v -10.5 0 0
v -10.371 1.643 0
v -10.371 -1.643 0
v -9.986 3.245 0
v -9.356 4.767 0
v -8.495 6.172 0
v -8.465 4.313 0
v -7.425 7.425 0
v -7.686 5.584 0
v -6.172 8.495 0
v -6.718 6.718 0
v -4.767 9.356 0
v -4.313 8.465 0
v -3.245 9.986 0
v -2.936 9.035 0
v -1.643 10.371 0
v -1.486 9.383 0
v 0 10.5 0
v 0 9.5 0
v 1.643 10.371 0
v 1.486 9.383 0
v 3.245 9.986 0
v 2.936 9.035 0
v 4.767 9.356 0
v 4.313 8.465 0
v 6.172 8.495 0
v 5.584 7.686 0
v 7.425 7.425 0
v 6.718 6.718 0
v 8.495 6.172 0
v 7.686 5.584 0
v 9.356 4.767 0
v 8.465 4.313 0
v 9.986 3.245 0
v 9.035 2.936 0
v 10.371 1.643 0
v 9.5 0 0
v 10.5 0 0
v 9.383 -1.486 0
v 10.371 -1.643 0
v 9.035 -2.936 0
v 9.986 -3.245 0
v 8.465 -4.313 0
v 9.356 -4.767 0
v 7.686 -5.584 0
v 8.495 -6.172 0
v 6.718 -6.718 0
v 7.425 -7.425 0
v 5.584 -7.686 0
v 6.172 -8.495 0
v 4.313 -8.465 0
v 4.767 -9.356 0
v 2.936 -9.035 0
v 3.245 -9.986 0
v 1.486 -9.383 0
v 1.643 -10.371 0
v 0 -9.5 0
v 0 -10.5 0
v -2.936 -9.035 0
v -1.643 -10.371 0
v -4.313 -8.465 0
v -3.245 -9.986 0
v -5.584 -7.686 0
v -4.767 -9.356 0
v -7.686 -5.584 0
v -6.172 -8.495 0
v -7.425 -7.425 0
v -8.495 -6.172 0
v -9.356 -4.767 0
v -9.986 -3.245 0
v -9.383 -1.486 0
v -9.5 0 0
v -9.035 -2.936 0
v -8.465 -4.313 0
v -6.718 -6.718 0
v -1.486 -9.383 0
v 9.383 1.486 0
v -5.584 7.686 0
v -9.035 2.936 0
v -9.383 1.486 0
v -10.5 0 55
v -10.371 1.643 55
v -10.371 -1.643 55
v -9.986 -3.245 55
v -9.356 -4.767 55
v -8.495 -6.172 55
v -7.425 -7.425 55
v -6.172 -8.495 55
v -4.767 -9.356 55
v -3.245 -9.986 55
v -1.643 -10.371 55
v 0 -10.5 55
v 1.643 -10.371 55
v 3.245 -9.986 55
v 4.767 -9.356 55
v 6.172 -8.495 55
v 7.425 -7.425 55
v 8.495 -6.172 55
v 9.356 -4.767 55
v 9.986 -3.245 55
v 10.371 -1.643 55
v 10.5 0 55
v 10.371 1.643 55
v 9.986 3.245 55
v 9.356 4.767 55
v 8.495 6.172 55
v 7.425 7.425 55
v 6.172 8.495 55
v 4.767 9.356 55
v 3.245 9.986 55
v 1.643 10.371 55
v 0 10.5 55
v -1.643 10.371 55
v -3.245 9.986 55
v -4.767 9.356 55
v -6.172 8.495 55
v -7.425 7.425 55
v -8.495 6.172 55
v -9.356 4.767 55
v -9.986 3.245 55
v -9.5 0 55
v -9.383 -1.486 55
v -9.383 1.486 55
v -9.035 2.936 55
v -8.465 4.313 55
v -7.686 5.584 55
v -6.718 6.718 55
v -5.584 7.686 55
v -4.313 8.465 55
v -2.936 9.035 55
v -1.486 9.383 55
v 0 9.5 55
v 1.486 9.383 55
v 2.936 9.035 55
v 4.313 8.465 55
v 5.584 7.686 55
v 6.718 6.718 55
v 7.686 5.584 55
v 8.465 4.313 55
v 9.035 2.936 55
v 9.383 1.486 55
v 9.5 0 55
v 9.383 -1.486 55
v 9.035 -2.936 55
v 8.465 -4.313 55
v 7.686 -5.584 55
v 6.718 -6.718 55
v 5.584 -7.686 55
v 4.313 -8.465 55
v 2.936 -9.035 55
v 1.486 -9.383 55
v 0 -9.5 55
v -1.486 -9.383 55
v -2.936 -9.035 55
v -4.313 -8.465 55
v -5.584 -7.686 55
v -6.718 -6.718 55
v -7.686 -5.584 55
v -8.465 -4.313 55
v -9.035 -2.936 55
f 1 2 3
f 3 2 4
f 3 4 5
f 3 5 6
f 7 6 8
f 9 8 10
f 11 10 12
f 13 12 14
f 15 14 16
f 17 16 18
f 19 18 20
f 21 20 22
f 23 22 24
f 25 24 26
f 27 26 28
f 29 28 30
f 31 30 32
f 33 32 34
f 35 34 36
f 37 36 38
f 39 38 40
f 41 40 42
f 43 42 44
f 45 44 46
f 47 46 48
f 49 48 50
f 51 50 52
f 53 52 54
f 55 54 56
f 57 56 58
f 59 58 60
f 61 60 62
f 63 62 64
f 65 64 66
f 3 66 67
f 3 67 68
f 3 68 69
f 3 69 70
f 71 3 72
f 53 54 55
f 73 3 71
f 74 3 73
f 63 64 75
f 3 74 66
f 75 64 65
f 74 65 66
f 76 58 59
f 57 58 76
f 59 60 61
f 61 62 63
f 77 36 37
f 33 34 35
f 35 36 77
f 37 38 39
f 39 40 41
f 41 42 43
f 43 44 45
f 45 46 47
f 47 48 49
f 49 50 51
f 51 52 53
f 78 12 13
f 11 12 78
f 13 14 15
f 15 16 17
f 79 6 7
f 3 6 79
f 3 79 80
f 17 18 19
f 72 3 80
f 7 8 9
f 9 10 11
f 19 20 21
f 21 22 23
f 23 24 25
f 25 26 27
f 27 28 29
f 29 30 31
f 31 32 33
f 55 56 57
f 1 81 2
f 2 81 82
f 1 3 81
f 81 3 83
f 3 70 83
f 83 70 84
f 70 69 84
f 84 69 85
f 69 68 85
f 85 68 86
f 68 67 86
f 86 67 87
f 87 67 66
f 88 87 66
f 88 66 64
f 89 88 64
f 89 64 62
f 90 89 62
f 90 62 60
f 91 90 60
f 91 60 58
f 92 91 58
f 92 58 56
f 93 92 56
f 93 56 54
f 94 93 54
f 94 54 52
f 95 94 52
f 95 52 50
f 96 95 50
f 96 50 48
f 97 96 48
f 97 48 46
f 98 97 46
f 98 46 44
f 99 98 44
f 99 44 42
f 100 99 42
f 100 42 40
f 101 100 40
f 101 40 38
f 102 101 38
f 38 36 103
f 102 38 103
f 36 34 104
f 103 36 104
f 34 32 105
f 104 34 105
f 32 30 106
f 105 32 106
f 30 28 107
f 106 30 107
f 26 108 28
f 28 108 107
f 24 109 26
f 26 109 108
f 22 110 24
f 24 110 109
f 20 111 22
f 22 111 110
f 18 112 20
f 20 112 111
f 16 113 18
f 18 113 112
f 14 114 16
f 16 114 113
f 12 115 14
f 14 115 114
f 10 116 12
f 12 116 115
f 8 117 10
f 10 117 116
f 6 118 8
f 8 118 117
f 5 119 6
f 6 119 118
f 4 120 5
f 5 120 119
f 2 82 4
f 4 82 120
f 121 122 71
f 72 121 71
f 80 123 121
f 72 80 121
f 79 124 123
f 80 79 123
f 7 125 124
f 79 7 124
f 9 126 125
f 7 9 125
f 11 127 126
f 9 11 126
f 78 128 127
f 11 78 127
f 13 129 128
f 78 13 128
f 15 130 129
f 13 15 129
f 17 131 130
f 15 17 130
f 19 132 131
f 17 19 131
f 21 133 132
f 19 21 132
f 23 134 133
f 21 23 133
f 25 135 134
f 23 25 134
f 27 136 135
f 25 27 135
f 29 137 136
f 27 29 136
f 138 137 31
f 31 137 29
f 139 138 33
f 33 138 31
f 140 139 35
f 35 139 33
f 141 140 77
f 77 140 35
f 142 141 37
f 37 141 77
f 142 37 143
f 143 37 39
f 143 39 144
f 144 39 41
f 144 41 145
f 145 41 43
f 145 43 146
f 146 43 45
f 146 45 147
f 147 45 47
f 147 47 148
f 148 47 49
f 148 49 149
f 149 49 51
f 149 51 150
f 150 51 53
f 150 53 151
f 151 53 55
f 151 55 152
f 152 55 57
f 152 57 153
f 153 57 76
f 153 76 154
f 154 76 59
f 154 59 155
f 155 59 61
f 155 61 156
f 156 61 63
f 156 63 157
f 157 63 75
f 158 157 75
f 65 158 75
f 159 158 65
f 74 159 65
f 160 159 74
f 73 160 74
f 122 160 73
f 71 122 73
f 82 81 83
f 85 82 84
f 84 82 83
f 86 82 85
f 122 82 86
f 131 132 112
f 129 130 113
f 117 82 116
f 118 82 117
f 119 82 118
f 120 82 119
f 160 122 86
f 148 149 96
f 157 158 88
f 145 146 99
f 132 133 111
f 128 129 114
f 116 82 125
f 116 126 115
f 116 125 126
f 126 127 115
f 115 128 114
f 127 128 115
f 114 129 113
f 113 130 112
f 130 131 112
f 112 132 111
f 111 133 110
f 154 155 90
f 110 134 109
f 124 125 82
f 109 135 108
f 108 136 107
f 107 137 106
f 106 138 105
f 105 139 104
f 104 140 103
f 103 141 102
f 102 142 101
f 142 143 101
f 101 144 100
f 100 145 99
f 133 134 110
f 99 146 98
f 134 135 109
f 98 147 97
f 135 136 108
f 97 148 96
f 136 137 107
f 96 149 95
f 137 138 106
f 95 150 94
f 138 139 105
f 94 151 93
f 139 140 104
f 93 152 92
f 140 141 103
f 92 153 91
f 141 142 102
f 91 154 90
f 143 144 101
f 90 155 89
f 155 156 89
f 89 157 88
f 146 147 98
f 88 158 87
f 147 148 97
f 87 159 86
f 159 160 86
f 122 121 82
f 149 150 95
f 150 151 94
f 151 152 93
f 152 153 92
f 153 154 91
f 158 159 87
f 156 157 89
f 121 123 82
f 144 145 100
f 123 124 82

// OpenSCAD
//****************************************************************
//*  Name    : Lithium Battery Sleve                             *
//*  Author  : Robert Joseph Korn                                *
//*  Notice  : Copyright (c) 2015 Open Valley Consulting Corp    *
//*          : All Rights Reserved                               *
//*  Date    : 6/8/15                                            *
//*  Version : 1.0                                               *
//*  Notes   :                                                   *
//*          :                                                   *
//****************************************************************

$fn=40;

difference(){
	cylinder(d=21,h=55);
	cylinder(d=19,h=55);
}
